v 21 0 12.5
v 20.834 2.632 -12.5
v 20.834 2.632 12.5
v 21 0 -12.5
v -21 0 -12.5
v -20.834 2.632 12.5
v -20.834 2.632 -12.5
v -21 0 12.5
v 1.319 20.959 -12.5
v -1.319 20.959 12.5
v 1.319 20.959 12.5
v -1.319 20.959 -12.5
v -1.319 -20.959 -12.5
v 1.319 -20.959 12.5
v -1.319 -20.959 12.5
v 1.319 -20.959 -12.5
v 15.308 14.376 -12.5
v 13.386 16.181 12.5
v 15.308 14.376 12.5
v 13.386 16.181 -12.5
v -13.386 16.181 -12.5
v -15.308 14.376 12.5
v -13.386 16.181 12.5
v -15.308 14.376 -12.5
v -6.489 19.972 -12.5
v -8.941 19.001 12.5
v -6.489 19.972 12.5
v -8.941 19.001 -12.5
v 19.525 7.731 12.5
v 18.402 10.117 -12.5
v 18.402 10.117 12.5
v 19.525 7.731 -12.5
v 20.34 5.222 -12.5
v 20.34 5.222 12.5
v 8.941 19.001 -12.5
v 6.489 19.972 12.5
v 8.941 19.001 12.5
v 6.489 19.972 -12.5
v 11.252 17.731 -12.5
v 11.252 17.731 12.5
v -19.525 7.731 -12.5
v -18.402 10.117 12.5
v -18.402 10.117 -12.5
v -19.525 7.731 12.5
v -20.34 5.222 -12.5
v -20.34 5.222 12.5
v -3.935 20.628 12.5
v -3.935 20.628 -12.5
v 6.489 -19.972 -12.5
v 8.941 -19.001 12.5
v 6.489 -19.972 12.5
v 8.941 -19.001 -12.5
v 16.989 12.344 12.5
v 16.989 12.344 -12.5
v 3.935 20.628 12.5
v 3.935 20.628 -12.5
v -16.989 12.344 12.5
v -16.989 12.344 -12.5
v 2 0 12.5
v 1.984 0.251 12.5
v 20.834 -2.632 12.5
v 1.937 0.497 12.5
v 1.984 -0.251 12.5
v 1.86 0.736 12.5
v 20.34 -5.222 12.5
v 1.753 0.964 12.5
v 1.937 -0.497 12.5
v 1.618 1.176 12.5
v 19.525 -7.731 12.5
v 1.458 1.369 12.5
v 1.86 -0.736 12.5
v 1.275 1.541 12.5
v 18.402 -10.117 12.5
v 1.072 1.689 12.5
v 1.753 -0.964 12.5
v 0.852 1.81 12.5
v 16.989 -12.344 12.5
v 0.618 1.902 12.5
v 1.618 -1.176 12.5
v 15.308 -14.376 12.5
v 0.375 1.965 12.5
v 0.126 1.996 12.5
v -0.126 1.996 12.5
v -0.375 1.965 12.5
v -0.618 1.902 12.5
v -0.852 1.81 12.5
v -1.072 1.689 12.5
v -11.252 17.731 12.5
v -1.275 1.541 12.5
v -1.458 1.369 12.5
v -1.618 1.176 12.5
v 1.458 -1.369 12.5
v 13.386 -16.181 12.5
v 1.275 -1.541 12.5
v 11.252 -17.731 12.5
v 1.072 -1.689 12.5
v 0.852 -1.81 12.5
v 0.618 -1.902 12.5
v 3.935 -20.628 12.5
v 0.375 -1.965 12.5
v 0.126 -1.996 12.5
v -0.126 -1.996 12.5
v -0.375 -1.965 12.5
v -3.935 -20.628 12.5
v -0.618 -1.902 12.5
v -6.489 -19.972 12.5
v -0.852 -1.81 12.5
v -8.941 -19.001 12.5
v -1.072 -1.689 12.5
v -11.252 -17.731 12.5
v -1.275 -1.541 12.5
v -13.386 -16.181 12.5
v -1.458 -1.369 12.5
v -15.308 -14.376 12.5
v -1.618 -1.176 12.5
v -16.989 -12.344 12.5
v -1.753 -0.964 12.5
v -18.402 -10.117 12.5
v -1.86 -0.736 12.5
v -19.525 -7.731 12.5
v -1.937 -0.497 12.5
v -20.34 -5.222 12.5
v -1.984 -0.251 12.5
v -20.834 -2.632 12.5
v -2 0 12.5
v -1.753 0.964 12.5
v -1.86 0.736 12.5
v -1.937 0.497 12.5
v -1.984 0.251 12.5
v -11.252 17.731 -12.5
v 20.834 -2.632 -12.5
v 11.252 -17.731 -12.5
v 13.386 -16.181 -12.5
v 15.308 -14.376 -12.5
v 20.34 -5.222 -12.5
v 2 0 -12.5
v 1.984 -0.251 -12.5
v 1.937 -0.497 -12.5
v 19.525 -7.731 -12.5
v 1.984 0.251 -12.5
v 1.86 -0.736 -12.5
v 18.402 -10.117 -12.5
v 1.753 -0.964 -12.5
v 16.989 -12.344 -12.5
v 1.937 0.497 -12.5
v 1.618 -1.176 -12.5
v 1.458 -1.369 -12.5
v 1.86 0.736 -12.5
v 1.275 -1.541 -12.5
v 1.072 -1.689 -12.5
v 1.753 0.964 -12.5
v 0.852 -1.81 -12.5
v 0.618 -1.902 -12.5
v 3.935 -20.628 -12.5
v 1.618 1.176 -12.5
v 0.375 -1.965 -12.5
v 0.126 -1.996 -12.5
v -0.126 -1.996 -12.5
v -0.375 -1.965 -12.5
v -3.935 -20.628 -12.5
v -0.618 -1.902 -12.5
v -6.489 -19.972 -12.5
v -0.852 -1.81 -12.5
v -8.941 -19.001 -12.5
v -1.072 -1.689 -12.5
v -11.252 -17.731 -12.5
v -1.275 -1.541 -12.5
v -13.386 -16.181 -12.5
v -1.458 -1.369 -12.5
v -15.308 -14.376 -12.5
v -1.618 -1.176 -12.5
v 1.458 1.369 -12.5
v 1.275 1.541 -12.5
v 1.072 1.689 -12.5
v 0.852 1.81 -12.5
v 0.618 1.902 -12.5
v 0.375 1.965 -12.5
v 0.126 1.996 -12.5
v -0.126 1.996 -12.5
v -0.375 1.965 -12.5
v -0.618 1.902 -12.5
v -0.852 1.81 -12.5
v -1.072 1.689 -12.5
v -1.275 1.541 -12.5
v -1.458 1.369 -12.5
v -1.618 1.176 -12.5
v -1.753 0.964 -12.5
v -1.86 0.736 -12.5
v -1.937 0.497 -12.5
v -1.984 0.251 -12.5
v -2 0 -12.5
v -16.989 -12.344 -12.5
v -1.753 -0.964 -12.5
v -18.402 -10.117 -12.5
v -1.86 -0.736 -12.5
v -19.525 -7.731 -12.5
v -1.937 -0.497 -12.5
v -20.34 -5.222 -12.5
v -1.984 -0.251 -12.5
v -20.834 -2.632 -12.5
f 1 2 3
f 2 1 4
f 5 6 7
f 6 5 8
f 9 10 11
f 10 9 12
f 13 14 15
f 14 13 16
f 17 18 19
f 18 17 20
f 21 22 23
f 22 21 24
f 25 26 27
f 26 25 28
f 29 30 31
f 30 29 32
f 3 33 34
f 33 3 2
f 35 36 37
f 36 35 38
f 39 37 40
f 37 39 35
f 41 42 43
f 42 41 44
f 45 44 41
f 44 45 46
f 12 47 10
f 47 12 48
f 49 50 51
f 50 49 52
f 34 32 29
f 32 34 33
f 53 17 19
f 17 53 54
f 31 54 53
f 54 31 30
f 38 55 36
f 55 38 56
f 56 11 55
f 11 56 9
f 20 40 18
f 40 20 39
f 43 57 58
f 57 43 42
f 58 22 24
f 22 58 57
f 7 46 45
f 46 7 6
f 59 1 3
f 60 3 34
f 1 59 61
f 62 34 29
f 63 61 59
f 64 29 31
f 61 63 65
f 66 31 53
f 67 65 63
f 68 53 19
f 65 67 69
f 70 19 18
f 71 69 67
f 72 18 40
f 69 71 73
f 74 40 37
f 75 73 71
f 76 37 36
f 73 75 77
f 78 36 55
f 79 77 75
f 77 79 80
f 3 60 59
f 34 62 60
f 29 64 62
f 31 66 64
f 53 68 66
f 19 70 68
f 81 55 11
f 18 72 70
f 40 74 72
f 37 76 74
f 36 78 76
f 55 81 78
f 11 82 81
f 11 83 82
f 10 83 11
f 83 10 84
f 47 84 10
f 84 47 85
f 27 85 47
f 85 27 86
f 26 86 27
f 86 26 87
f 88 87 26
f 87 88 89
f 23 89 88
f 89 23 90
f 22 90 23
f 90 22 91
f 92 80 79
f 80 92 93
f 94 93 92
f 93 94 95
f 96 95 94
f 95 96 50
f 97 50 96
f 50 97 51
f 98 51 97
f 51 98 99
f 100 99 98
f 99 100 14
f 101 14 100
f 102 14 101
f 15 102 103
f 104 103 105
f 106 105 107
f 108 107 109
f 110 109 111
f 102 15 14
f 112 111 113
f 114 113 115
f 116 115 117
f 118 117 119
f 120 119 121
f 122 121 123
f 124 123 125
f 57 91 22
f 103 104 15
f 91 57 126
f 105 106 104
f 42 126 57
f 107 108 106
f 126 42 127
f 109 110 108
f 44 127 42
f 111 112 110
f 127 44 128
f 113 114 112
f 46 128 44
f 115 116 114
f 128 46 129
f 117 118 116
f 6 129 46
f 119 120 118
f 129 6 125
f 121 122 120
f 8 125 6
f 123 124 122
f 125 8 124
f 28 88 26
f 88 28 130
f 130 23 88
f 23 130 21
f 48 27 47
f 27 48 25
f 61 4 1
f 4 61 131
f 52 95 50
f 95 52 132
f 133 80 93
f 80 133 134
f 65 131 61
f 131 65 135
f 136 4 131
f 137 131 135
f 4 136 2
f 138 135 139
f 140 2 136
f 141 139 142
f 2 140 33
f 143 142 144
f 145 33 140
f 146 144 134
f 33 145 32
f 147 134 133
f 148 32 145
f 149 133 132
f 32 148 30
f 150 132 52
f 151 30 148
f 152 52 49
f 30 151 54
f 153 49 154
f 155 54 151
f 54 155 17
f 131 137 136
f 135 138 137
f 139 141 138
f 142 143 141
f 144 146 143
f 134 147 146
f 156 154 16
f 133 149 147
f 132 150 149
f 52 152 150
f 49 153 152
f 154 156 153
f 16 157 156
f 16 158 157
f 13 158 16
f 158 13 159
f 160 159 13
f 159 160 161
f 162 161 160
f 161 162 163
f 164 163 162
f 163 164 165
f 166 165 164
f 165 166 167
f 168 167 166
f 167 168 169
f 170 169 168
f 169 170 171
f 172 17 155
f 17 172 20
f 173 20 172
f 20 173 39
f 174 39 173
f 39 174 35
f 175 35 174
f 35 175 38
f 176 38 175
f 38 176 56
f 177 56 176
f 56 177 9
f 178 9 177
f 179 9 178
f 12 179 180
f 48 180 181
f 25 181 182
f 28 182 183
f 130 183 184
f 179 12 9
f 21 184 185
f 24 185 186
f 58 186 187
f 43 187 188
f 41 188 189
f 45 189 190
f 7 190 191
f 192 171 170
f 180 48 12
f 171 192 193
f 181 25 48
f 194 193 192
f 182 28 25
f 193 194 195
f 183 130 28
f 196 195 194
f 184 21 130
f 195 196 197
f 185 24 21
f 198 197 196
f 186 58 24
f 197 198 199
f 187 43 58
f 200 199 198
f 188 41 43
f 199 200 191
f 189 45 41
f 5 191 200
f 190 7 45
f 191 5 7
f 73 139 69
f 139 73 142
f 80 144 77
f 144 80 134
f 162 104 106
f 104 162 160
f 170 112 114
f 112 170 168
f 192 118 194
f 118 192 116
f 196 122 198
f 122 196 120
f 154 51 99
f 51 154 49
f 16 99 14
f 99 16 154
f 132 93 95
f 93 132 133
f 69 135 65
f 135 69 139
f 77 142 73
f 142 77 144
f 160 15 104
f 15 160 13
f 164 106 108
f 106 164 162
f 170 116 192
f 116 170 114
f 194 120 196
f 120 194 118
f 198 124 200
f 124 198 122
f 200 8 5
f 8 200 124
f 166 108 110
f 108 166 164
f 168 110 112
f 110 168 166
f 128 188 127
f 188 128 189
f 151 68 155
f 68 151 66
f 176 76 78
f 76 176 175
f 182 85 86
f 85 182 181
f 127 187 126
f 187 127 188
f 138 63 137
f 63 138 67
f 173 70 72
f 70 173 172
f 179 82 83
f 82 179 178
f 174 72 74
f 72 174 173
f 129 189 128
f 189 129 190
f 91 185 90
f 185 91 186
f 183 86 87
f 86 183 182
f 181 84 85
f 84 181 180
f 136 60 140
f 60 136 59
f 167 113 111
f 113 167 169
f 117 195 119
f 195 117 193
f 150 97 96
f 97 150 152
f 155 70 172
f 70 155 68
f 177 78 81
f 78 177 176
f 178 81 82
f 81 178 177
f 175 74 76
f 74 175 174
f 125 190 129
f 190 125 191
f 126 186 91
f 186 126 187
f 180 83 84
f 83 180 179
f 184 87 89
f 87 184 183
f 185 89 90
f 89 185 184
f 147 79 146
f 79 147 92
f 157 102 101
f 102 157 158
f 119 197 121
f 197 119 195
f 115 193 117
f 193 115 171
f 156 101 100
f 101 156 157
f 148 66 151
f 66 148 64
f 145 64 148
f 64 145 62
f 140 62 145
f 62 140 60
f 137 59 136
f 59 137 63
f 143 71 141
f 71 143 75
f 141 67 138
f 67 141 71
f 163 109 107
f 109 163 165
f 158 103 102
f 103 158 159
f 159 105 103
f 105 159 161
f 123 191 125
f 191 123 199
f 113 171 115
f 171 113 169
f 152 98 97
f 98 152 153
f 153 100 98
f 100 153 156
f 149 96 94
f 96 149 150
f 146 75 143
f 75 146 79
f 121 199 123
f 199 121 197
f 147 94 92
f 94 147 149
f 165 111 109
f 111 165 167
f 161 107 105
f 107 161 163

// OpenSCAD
$fn = 50;


difference() {
	union() {
		translate(v = [0, 0, -12.5000000000]) {
			cylinder(h = 25, r = 21.0000000000);
		}
	}
	union() {
		translate(v = [0, 0, -100.0000000000]) {
			cylinder(h = 200, r = 2);
		}
	}
}
